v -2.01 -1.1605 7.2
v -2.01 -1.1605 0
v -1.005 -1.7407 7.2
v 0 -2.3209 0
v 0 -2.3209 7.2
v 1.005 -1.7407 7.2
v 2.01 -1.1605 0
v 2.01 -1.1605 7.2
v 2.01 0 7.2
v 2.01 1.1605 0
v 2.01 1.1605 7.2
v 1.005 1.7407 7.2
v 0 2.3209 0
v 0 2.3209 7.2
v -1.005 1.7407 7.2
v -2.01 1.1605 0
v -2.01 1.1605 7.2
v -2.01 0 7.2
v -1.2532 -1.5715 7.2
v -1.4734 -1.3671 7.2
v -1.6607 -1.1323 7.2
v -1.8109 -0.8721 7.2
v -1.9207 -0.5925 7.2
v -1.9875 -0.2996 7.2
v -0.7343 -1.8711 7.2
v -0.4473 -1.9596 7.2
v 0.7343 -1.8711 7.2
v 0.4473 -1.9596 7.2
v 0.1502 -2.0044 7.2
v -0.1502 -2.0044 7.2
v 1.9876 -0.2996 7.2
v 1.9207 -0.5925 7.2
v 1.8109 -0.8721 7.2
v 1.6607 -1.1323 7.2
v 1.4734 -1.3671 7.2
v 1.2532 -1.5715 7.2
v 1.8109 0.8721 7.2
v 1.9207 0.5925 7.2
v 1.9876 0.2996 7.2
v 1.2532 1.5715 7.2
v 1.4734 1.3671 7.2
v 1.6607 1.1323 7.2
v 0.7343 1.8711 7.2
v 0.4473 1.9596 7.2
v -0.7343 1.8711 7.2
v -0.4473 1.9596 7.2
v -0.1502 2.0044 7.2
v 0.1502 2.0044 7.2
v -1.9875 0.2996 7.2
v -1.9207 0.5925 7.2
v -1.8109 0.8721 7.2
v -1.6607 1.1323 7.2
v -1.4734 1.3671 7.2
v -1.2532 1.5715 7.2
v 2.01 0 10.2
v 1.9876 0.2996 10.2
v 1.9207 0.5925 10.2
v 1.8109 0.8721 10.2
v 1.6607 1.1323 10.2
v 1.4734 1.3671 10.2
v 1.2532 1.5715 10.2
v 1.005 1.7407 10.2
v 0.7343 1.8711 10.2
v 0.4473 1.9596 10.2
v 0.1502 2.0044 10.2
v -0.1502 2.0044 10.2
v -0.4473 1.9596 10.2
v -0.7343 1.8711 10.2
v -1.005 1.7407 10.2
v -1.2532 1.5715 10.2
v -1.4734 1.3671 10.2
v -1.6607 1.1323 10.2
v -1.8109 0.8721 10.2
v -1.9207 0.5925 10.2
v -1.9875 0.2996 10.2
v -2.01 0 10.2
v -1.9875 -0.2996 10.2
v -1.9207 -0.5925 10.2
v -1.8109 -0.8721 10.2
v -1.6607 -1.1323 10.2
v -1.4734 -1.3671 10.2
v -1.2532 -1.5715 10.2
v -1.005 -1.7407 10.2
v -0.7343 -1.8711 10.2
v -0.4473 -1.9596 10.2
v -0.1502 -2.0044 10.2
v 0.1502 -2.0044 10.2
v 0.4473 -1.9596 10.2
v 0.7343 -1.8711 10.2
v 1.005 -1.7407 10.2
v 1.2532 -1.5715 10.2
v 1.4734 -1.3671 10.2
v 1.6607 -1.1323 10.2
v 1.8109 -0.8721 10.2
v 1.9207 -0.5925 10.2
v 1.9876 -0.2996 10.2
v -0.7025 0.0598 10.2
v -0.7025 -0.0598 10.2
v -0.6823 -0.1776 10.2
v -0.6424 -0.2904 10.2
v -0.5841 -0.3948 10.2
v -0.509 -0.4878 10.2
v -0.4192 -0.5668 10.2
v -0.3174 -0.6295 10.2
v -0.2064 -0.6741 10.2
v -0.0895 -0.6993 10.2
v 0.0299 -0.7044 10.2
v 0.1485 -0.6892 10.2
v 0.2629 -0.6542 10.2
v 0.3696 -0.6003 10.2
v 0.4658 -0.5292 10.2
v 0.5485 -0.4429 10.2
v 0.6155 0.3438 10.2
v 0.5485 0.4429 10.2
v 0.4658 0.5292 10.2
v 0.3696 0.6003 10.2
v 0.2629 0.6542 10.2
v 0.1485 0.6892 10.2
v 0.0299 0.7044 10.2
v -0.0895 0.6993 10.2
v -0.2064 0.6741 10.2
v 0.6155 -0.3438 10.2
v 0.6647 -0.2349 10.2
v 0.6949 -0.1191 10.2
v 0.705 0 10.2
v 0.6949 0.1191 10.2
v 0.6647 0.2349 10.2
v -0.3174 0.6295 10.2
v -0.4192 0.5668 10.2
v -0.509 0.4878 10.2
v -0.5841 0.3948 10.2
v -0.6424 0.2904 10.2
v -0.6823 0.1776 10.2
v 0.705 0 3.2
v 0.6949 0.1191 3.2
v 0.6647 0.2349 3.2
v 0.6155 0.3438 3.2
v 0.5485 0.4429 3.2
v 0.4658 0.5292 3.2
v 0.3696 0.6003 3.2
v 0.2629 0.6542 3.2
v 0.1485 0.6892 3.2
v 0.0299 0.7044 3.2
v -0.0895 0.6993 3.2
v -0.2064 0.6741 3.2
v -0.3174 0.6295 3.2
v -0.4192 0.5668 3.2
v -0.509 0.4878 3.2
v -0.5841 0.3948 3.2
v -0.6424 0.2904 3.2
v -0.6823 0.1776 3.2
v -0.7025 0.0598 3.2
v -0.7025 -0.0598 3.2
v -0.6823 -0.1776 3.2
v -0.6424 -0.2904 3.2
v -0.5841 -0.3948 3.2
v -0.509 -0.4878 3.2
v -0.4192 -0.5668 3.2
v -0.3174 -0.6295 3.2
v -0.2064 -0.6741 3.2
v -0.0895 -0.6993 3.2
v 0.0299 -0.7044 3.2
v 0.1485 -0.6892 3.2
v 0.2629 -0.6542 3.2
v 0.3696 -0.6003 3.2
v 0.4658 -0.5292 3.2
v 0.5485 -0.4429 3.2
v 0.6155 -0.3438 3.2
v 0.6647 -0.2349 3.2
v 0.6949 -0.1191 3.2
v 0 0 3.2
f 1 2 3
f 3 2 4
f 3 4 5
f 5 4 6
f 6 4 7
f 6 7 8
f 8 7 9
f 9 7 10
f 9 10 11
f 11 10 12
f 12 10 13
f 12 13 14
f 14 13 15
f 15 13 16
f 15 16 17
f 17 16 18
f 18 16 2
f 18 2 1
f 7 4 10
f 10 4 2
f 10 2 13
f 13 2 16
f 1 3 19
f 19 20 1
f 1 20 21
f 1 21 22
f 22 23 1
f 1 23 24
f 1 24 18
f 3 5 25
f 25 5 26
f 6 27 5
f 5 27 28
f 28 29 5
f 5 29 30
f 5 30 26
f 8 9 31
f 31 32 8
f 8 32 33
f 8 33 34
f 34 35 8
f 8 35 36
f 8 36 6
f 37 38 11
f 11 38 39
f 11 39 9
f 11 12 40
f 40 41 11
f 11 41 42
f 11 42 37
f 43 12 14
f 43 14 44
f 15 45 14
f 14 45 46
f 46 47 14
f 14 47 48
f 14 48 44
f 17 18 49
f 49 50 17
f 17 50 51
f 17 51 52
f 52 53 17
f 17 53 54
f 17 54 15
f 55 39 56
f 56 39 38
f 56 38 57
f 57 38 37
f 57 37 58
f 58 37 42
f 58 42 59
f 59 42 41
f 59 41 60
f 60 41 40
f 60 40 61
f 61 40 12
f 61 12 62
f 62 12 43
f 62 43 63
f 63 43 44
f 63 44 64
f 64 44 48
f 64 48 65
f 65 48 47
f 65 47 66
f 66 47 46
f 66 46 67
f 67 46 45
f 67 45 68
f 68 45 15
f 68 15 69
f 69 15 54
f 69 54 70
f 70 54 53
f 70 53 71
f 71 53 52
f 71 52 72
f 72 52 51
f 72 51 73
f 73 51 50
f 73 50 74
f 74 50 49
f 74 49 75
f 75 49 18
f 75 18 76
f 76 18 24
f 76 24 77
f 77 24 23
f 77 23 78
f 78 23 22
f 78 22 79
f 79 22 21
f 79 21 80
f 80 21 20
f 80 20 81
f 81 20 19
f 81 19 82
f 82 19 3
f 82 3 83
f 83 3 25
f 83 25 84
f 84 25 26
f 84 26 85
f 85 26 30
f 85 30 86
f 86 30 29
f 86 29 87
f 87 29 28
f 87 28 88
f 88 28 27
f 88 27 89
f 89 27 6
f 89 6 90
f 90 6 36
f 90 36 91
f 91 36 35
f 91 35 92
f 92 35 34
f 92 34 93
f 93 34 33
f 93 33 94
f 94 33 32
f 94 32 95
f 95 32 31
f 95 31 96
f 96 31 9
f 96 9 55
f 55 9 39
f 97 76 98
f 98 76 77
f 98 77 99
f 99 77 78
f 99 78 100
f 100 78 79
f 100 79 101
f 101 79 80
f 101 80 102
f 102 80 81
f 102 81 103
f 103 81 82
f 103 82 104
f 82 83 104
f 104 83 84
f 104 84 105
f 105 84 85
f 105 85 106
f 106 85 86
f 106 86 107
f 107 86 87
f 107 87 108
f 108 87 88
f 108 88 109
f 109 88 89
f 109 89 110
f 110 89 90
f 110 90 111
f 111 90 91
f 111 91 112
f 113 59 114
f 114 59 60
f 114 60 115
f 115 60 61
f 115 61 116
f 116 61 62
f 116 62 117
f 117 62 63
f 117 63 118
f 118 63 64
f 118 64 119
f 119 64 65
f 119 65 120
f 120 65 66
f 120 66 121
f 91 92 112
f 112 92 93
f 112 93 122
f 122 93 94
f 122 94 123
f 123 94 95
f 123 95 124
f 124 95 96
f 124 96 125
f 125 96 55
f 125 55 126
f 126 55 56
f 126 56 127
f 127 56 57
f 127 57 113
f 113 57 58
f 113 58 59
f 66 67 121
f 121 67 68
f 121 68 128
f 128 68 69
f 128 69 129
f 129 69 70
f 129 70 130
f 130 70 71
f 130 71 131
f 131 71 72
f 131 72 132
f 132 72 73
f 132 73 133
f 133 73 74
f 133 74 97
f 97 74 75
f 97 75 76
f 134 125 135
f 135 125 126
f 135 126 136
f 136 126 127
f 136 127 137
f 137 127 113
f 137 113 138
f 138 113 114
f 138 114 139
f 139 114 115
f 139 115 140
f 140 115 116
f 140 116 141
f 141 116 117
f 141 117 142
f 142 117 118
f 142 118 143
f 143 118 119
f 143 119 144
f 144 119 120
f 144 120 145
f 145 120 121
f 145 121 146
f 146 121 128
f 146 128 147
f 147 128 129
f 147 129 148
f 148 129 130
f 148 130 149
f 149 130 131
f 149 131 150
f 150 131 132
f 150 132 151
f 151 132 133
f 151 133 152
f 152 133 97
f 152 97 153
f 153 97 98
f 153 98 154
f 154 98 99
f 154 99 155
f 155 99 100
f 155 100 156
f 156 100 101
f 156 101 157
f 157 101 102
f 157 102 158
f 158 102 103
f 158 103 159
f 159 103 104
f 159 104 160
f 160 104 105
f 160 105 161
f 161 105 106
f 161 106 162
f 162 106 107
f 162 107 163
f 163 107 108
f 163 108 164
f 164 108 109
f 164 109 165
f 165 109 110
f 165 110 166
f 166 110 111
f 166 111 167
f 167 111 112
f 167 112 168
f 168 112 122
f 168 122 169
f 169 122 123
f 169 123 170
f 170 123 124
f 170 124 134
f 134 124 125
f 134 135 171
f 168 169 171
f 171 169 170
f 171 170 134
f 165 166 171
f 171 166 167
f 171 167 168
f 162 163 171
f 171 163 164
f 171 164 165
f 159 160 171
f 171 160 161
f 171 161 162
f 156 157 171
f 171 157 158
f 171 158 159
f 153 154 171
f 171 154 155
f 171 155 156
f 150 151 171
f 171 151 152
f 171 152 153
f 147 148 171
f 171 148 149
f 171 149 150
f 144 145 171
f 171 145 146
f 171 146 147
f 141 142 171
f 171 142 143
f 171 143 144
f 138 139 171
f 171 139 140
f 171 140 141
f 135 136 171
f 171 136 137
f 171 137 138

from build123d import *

# Parameters (mm, degrees)
BOSS_EXTRUDE1_DEPTH = 10.2
SKETCH2_R           = 2.320948082
SKETCH2_R_2         = 2.01
CUT_EXTRUDE2_DEPTH  = 3
SKETCH4_R           = 0.705
CUT_EXTRUDE3_DEPTH  = 7


with BuildPart() as part:
    # Sketch1 → Boss-Extrude1 (new body)
    with BuildSketch(Plane.XY):
        Polygon((0, -2.320948082), (2.01, -1.160474041), (2.01, 1.160474041), (0, 2.320948082), (-2.01, 1.160474041), (-2.01, -1.160474041), align=None)
    extrude(amount=BOSS_EXTRUDE1_DEPTH)

    # Sketch2 → Cut-Extrude2 (cut)
    with BuildSketch(Plane.XY.offset(10.2)):
        Circle(SKETCH2_R)
        Circle(SKETCH2_R_2, mode=Mode.SUBTRACT)
    extrude(amount=-CUT_EXTRUDE2_DEPTH, mode=Mode.SUBTRACT)

    # Sketch4 → Cut-Extrude3 (cut)
    with BuildSketch(Plane.XY.offset(10.2)):
        Circle(SKETCH4_R)
    extrude(amount=-CUT_EXTRUDE3_DEPTH, mode=Mode.SUBTRACT)


solid = part.part
